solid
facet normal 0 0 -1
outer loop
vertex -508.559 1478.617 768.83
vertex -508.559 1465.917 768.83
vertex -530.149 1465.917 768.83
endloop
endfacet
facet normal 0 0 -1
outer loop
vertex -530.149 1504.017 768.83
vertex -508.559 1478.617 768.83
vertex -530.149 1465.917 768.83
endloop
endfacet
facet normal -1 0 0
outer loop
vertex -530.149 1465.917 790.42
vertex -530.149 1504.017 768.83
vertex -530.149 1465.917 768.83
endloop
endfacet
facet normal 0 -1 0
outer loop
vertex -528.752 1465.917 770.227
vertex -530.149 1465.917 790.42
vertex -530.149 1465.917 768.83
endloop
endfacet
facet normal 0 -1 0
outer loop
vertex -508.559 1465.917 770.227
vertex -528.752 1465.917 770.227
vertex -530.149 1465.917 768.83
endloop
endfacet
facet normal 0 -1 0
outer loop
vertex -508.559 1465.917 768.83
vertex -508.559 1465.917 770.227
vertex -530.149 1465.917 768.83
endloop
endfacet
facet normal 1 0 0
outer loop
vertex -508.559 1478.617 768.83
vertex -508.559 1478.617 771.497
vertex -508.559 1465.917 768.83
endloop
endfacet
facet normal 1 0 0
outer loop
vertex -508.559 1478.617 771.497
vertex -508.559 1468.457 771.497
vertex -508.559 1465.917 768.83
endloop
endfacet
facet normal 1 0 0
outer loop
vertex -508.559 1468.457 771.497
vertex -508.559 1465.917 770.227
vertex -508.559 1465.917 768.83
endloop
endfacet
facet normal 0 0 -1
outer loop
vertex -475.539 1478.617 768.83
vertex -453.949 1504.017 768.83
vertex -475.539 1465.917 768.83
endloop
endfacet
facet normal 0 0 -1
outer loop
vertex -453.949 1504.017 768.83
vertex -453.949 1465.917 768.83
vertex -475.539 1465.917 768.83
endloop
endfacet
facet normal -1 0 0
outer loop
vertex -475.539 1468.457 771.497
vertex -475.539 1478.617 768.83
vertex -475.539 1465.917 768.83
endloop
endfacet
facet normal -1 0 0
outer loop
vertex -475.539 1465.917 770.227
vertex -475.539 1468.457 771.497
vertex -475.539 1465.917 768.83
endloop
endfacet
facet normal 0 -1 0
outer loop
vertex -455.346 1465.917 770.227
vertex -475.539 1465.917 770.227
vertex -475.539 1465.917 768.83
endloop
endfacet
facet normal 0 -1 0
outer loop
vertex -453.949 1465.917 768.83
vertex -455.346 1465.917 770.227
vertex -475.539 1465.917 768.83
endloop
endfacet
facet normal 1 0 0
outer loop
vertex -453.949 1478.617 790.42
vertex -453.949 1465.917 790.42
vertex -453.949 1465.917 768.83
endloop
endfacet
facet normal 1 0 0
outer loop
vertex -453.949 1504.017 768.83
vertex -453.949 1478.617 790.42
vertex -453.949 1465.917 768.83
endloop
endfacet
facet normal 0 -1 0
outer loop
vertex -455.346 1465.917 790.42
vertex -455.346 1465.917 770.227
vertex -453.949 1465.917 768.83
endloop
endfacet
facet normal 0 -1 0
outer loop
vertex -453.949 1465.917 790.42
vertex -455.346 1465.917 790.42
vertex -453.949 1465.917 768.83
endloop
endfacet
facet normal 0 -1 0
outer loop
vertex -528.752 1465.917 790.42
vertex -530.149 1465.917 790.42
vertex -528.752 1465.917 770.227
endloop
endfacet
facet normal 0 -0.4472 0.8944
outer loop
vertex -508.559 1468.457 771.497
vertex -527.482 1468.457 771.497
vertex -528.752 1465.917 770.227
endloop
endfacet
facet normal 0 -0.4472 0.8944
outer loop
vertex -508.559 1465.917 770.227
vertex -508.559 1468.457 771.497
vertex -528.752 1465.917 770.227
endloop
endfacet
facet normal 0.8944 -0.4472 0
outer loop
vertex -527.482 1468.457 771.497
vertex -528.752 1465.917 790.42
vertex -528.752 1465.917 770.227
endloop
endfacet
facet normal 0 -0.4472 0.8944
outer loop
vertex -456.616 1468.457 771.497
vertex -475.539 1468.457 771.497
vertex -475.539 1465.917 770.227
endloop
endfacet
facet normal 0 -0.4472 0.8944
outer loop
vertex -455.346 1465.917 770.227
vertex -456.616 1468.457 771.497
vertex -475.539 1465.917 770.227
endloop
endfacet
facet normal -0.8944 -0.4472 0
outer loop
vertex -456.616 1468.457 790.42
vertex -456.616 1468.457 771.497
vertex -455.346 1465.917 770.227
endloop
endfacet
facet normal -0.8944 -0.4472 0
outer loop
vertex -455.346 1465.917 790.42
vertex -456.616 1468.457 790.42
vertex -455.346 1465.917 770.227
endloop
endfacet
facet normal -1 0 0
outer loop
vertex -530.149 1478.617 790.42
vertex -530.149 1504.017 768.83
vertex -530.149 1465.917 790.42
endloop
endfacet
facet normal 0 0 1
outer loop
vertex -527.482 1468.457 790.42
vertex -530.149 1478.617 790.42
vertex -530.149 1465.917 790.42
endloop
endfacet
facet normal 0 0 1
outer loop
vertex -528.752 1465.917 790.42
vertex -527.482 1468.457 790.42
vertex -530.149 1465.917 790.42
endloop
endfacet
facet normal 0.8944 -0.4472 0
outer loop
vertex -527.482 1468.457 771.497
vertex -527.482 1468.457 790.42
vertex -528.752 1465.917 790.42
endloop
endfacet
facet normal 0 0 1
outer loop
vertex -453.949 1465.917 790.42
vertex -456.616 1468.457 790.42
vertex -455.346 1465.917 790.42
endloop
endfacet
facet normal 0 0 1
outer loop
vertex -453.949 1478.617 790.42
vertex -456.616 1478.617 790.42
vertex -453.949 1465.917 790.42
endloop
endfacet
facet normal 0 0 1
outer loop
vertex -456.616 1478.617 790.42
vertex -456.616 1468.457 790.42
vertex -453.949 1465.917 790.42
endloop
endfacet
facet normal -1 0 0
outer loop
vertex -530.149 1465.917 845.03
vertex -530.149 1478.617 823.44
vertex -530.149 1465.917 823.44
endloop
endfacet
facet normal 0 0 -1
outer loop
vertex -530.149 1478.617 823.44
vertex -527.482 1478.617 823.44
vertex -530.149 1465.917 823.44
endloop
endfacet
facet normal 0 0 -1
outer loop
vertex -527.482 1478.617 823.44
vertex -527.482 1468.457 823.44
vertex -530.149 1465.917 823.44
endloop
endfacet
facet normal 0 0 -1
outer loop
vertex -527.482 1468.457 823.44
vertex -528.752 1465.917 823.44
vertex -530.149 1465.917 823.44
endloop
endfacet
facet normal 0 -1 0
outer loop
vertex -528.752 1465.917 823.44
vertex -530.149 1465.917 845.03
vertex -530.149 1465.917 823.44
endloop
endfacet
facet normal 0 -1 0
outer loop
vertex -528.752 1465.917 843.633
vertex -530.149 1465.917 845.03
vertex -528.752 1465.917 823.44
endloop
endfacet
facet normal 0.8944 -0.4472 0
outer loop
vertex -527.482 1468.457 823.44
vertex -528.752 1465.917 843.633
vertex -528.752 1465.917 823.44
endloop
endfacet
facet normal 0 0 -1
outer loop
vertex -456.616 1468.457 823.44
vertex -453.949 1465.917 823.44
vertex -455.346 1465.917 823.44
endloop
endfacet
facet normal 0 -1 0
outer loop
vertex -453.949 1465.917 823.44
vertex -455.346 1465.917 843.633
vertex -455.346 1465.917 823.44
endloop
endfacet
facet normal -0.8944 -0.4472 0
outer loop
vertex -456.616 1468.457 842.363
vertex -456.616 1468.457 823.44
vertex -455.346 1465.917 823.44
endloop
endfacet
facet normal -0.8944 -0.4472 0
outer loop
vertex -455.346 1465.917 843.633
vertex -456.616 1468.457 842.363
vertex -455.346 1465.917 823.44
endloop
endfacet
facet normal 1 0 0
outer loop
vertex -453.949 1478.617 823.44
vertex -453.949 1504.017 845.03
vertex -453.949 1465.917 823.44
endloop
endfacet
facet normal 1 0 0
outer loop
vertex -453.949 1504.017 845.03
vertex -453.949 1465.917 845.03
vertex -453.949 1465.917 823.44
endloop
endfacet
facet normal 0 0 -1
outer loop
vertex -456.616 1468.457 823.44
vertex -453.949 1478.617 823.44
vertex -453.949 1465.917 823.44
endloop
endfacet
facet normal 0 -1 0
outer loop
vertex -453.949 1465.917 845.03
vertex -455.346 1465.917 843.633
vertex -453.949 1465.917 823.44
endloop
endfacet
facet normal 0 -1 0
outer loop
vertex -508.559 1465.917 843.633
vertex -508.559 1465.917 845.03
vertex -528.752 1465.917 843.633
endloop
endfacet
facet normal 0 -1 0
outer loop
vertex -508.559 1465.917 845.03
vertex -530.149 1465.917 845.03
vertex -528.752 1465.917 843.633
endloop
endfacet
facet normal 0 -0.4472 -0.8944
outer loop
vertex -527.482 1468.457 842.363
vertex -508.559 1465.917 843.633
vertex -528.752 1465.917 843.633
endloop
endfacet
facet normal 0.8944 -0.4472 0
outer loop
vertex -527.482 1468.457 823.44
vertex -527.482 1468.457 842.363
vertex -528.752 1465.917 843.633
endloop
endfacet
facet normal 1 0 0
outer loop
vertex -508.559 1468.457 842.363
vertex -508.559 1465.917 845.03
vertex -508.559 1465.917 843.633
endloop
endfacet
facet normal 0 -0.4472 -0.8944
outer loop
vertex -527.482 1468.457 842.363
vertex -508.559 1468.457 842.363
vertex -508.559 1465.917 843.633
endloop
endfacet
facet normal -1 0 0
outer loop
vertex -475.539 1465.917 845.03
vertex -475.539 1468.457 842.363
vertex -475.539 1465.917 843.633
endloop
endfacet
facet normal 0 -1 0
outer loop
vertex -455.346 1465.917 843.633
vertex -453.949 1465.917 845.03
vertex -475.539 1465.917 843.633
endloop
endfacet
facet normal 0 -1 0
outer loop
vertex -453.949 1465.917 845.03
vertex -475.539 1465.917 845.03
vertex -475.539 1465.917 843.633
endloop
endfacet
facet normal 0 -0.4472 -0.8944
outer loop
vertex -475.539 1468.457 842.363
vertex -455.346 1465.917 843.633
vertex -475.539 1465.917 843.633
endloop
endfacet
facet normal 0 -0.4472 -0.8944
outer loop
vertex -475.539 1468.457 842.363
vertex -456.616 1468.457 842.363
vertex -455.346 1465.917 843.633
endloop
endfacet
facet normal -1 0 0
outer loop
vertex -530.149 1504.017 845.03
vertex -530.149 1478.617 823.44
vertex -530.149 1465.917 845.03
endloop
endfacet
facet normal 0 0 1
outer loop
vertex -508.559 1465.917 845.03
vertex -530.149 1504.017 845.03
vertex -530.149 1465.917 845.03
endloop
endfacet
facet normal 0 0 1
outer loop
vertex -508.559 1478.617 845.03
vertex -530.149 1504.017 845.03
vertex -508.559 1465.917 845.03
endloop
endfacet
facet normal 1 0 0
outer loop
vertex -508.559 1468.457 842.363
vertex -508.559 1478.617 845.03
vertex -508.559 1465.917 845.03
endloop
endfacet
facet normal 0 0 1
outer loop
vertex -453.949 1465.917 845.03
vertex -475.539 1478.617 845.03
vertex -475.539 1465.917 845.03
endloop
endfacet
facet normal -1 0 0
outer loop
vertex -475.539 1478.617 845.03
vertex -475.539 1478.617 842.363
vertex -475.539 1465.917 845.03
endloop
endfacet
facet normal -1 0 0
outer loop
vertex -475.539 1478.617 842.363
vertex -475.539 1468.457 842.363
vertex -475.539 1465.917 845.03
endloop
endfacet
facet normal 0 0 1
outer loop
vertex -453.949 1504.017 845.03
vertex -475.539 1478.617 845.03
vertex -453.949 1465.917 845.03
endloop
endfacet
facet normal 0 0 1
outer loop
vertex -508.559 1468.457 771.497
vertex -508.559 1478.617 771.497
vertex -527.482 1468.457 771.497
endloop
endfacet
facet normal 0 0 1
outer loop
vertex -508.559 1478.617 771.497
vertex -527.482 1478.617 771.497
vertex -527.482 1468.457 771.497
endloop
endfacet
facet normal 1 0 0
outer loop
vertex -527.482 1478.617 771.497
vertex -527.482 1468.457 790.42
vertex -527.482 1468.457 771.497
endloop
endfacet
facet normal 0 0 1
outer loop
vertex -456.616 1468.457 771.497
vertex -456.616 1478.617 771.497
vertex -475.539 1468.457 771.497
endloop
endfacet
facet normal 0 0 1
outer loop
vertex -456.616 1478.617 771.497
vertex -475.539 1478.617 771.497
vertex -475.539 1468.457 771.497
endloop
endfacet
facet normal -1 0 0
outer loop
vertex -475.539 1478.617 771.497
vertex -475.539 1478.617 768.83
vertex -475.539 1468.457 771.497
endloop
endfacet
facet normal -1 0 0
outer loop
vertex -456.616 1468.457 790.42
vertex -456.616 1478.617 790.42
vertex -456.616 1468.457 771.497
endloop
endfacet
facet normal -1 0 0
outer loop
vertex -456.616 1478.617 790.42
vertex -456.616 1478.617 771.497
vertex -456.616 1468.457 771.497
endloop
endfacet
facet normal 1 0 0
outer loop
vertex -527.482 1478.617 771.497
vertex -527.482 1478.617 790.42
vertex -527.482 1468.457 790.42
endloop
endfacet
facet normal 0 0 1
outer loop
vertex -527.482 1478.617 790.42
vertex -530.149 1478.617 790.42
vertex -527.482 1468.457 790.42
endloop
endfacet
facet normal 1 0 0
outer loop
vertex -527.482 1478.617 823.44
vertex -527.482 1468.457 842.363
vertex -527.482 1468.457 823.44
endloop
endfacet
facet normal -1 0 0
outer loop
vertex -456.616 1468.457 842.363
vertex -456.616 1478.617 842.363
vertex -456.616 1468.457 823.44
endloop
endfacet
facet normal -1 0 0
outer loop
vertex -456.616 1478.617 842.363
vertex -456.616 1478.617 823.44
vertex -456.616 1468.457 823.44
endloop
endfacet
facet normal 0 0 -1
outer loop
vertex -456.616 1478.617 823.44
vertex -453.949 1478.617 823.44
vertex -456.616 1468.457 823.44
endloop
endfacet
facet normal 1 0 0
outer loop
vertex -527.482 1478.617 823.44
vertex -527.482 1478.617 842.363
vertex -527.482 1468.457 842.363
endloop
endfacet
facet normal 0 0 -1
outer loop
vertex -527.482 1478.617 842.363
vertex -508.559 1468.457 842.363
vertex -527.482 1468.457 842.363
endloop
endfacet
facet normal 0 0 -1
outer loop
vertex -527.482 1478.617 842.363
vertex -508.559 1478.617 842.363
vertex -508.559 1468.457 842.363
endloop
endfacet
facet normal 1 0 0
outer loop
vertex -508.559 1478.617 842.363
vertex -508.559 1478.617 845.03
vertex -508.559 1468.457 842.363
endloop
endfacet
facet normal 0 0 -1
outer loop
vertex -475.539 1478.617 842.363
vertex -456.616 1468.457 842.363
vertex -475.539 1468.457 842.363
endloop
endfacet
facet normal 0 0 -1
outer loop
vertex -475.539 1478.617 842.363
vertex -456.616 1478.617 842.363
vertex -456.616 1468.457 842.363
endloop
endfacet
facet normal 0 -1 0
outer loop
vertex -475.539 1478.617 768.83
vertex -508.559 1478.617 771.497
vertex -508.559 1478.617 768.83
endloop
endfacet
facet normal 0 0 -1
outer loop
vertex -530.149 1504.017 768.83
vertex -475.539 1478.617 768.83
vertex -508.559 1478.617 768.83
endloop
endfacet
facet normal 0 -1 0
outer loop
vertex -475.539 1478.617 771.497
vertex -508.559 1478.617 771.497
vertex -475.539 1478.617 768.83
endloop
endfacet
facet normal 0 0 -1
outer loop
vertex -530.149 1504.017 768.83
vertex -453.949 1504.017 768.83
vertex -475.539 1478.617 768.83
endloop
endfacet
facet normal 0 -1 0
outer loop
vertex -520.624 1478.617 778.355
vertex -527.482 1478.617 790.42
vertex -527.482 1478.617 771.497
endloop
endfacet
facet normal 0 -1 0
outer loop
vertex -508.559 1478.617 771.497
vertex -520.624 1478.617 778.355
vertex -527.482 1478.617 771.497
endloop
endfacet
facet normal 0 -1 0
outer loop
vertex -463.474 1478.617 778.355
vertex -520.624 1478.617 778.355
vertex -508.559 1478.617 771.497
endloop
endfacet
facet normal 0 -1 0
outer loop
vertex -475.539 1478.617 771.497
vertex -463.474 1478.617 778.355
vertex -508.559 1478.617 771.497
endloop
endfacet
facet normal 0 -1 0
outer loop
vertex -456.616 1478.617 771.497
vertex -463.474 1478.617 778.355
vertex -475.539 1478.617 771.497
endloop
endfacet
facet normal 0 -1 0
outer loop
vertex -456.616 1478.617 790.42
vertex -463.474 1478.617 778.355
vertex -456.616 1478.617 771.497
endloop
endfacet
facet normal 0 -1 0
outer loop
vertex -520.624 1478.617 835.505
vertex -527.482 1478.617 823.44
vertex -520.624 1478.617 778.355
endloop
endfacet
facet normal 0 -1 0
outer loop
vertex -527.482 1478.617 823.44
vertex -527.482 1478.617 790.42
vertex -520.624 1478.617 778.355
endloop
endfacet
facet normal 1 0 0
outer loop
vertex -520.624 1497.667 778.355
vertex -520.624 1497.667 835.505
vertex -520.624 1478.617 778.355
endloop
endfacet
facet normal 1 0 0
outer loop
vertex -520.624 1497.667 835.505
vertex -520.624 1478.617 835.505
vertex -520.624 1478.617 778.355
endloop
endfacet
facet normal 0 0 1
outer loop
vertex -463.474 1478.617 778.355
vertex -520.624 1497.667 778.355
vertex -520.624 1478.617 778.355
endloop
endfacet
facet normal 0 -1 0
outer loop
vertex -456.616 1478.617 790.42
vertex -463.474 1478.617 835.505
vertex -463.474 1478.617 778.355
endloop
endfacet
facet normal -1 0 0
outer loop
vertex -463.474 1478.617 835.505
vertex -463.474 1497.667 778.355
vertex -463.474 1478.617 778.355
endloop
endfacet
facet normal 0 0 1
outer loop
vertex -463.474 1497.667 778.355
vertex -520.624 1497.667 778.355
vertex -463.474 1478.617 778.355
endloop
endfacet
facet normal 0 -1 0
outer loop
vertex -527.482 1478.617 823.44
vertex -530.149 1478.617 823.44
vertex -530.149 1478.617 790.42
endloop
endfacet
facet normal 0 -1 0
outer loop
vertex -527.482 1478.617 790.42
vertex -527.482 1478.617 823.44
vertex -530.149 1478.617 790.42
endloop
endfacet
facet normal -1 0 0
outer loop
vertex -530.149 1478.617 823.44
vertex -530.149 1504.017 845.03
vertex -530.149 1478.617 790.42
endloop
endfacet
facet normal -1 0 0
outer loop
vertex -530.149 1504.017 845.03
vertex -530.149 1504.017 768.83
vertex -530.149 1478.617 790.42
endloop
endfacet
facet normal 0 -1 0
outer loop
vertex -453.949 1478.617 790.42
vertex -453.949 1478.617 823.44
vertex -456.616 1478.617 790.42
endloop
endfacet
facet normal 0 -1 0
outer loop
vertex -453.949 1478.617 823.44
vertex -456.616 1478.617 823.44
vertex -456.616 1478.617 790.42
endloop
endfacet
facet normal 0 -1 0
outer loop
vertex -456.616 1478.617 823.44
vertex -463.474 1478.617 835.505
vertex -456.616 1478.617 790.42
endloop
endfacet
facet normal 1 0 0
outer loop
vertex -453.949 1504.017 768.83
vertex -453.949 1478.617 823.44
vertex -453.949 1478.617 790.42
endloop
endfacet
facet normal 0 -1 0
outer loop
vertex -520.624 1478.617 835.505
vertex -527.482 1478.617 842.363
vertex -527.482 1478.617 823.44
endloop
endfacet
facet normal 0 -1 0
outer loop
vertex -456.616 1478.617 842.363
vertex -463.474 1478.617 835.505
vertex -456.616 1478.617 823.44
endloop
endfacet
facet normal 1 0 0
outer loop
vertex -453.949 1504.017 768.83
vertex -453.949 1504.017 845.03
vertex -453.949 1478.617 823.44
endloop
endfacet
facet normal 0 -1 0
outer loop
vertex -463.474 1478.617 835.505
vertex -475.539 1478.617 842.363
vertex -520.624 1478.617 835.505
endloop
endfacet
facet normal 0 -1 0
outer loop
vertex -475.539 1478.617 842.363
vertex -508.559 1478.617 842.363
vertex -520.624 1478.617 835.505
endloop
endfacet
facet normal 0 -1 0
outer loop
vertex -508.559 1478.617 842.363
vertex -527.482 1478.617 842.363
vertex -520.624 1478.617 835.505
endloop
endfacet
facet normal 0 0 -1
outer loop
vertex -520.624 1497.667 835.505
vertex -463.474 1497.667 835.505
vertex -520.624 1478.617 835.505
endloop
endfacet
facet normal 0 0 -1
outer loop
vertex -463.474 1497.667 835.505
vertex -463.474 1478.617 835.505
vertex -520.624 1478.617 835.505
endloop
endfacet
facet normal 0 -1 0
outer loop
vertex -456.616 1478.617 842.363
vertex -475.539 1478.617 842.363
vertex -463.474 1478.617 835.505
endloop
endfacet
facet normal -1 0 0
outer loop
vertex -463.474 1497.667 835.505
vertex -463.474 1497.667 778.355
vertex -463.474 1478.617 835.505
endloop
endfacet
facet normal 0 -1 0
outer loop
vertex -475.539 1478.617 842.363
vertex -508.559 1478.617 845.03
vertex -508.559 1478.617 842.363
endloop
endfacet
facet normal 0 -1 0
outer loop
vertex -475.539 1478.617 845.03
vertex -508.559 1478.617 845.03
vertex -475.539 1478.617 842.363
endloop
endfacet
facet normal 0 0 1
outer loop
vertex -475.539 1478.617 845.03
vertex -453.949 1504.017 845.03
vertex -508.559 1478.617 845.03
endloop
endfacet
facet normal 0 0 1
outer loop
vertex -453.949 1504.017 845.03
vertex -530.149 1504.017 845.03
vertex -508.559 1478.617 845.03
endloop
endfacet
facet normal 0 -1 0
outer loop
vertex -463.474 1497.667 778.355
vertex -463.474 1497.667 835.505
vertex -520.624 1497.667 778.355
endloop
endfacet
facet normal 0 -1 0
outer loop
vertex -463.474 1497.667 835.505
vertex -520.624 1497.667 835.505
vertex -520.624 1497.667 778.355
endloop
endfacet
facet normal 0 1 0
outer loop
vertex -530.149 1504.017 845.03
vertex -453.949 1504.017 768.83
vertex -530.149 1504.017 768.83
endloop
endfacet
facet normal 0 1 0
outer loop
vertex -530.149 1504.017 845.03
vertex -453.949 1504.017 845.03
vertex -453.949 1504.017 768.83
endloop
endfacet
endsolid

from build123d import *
from OCP.BRepFilletAPI import BRepFilletAPI_MakeChamfer

# Parameters (mm, degrees)
SKETCH1_W           = 76.2
SKETCH1_H           = 76.2
BOSS_EXTRUDE1_DEPTH = 25.4
SKETCH2_W           = 57.15
SKETCH2_H           = 57.15
CUT_EXTRUDE1_DEPTH  = 19.05
BOSS_EXTRUDE2_DEPTH = 12.7
CHAMFER1_SIZE       = 2.54
CHAMFER1_SIZE2      = 1.27


with BuildPart() as part:
    # Sketch1 → Boss-Extrude1 (new body)
    with BuildSketch(Plane(origin=(0, 1478.617106037, 0), x_dir=(1, 0, 0), z_dir=(0, 1, 0))):
        with Locations((-492.049198231, -806.92955637)):
            Rectangle(SKETCH1_W, SKETCH1_H)
    extrude(amount=BOSS_EXTRUDE1_DEPTH)

    # Sketch2 → Cut-Extrude1 (cut)
    with BuildSketch(Plane(origin=(0, 1478.617106037, 0), x_dir=(-1, 0, 0), z_dir=(0, -1, 0))):
        with Locations((492.049198231, -806.92955637)):
            Rectangle(SKETCH2_W, SKETCH2_H)
    extrude(amount=-CUT_EXTRUDE1_DEPTH, mode=Mode.SUBTRACT)

    # Sketch3 → Boss-Extrude2 (add)
    with BuildSketch(Plane(origin=(0, 1478.617106037, 0), x_dir=(-1, 0, 0), z_dir=(0, -1, 0))):
        Polygon((530.149198231, -790.41955637), (527.482198231, -790.41955637), (527.482198231, -771.49655637), (508.559198231, -771.49655637), (508.559198231, -768.82955637), (530.149198231, -768.82955637), align=None)
        Polygon((530.149198231, -823.43955637), (527.482198231, -823.43955637), (527.482198231, -842.36255637), (508.559198231, -842.36255637), (508.559198231, -845.02955637), (530.149198231, -845.02955637), align=None)
        Polygon((475.539198231, -768.82955637), (475.539198231, -771.49655637), (456.616198231, -771.49655637), (456.616198231, -790.41955637), (453.949198231, -790.41955637), (453.949198231, -768.82955637), align=None)
        Polygon((475.539198231, -845.02955637), (475.539198231, -842.36255637), (456.616198231, -842.36255637), (456.616198231, -823.43955637), (453.949198231, -823.43955637), (453.949198231, -845.02955637), align=None)
    extrude(amount=BOSS_EXTRUDE2_DEPTH)

    # Chamfer1: one chamfer whose edges measure the first distance from different faces: ONE call of the kernel's chamfer builder (chamfer() names one face for all edges)
    chamfer1_edges_1 = [part.edges().sort_by_distance(p)[0] for p in [
        (-518.020698231, 1465.917106037, 771.49655637),
    ]]
    chamfer1_side_1 = [part.faces().sort_by_distance(p)[0] for p in [
        (-518.020698231, 1472.267106037, 771.49655637),
    ]]
    chamfer1_edges_2 = [part.edges().sort_by_distance(p)[0] for p in [
        (-527.482198231, 1465.917106037, 780.95805637),
    ]]
    chamfer1_side_2 = [part.faces().sort_by_distance(p)[0] for p in [
        (-527.482198231, 1472.267106037, 780.95805637),
    ]]
    chamfer1_edges_3 = [part.edges().sort_by_distance(p)[0] for p in [
        (-527.482198231, 1465.917106037, 832.90105637),
    ]]
    chamfer1_side_3 = [part.faces().sort_by_distance(p)[0] for p in [
        (-527.482198231, 1472.267106037, 832.90105637),
    ]]
    chamfer1_edges_4 = [part.edges().sort_by_distance(p)[0] for p in [
        (-518.020698231, 1465.917106037, 842.36255637),
    ]]
    chamfer1_side_4 = [part.faces().sort_by_distance(p)[0] for p in [
        (-518.020698231, 1472.267106037, 842.36255637),
    ]]
    chamfer1_edges_5 = [part.edges().sort_by_distance(p)[0] for p in [
        (-466.077698231, 1465.917106037, 771.49655637),
    ]]
    chamfer1_side_5 = [part.faces().sort_by_distance(p)[0] for p in [
        (-466.077698231, 1472.267106037, 771.49655637),
    ]]
    chamfer1_edges_6 = [part.edges().sort_by_distance(p)[0] for p in [
        (-456.616198231, 1465.917106037, 780.95805637),
    ]]
    chamfer1_side_6 = [part.faces().sort_by_distance(p)[0] for p in [
        (-456.616198231, 1472.267106037, 780.95805637),
    ]]
    chamfer1_edges_7 = [part.edges().sort_by_distance(p)[0] for p in [
        (-466.077698231, 1465.917106037, 842.36255637),
    ]]
    chamfer1_side_7 = [part.faces().sort_by_distance(p)[0] for p in [
        (-466.077698231, 1472.267106037, 842.36255637),
    ]]
    chamfer1_edges_8 = [part.edges().sort_by_distance(p)[0] for p in [
        (-456.616198231, 1465.917106037, 832.90105637),
    ]]
    chamfer1_side_8 = [part.faces().sort_by_distance(p)[0] for p in [
        (-456.616198231, 1472.267106037, 832.90105637),
    ]]
    chamfer1 = BRepFilletAPI_MakeChamfer(part.part.solid().wrapped)
    for e in chamfer1_edges_1:
        chamfer1.Add(CHAMFER1_SIZE, CHAMFER1_SIZE2, e.wrapped, chamfer1_side_1[0].wrapped)  # the first distance lies on this face
    for e in chamfer1_edges_2:
        chamfer1.Add(CHAMFER1_SIZE, CHAMFER1_SIZE2, e.wrapped, chamfer1_side_2[0].wrapped)  # the first distance lies on this face
    for e in chamfer1_edges_3:
        chamfer1.Add(CHAMFER1_SIZE, CHAMFER1_SIZE2, e.wrapped, chamfer1_side_3[0].wrapped)  # the first distance lies on this face
    for e in chamfer1_edges_4:
        chamfer1.Add(CHAMFER1_SIZE, CHAMFER1_SIZE2, e.wrapped, chamfer1_side_4[0].wrapped)  # the first distance lies on this face
    for e in chamfer1_edges_5:
        chamfer1.Add(CHAMFER1_SIZE, CHAMFER1_SIZE2, e.wrapped, chamfer1_side_5[0].wrapped)  # the first distance lies on this face
    for e in chamfer1_edges_6:
        chamfer1.Add(CHAMFER1_SIZE, CHAMFER1_SIZE2, e.wrapped, chamfer1_side_6[0].wrapped)  # the first distance lies on this face
    for e in chamfer1_edges_7:
        chamfer1.Add(CHAMFER1_SIZE, CHAMFER1_SIZE2, e.wrapped, chamfer1_side_7[0].wrapped)  # the first distance lies on this face
    for e in chamfer1_edges_8:
        chamfer1.Add(CHAMFER1_SIZE, CHAMFER1_SIZE2, e.wrapped, chamfer1_side_8[0].wrapped)  # the first distance lies on this face
    add(Compound.cast(chamfer1.Shape()), mode=Mode.REPLACE)


solid = part.part
